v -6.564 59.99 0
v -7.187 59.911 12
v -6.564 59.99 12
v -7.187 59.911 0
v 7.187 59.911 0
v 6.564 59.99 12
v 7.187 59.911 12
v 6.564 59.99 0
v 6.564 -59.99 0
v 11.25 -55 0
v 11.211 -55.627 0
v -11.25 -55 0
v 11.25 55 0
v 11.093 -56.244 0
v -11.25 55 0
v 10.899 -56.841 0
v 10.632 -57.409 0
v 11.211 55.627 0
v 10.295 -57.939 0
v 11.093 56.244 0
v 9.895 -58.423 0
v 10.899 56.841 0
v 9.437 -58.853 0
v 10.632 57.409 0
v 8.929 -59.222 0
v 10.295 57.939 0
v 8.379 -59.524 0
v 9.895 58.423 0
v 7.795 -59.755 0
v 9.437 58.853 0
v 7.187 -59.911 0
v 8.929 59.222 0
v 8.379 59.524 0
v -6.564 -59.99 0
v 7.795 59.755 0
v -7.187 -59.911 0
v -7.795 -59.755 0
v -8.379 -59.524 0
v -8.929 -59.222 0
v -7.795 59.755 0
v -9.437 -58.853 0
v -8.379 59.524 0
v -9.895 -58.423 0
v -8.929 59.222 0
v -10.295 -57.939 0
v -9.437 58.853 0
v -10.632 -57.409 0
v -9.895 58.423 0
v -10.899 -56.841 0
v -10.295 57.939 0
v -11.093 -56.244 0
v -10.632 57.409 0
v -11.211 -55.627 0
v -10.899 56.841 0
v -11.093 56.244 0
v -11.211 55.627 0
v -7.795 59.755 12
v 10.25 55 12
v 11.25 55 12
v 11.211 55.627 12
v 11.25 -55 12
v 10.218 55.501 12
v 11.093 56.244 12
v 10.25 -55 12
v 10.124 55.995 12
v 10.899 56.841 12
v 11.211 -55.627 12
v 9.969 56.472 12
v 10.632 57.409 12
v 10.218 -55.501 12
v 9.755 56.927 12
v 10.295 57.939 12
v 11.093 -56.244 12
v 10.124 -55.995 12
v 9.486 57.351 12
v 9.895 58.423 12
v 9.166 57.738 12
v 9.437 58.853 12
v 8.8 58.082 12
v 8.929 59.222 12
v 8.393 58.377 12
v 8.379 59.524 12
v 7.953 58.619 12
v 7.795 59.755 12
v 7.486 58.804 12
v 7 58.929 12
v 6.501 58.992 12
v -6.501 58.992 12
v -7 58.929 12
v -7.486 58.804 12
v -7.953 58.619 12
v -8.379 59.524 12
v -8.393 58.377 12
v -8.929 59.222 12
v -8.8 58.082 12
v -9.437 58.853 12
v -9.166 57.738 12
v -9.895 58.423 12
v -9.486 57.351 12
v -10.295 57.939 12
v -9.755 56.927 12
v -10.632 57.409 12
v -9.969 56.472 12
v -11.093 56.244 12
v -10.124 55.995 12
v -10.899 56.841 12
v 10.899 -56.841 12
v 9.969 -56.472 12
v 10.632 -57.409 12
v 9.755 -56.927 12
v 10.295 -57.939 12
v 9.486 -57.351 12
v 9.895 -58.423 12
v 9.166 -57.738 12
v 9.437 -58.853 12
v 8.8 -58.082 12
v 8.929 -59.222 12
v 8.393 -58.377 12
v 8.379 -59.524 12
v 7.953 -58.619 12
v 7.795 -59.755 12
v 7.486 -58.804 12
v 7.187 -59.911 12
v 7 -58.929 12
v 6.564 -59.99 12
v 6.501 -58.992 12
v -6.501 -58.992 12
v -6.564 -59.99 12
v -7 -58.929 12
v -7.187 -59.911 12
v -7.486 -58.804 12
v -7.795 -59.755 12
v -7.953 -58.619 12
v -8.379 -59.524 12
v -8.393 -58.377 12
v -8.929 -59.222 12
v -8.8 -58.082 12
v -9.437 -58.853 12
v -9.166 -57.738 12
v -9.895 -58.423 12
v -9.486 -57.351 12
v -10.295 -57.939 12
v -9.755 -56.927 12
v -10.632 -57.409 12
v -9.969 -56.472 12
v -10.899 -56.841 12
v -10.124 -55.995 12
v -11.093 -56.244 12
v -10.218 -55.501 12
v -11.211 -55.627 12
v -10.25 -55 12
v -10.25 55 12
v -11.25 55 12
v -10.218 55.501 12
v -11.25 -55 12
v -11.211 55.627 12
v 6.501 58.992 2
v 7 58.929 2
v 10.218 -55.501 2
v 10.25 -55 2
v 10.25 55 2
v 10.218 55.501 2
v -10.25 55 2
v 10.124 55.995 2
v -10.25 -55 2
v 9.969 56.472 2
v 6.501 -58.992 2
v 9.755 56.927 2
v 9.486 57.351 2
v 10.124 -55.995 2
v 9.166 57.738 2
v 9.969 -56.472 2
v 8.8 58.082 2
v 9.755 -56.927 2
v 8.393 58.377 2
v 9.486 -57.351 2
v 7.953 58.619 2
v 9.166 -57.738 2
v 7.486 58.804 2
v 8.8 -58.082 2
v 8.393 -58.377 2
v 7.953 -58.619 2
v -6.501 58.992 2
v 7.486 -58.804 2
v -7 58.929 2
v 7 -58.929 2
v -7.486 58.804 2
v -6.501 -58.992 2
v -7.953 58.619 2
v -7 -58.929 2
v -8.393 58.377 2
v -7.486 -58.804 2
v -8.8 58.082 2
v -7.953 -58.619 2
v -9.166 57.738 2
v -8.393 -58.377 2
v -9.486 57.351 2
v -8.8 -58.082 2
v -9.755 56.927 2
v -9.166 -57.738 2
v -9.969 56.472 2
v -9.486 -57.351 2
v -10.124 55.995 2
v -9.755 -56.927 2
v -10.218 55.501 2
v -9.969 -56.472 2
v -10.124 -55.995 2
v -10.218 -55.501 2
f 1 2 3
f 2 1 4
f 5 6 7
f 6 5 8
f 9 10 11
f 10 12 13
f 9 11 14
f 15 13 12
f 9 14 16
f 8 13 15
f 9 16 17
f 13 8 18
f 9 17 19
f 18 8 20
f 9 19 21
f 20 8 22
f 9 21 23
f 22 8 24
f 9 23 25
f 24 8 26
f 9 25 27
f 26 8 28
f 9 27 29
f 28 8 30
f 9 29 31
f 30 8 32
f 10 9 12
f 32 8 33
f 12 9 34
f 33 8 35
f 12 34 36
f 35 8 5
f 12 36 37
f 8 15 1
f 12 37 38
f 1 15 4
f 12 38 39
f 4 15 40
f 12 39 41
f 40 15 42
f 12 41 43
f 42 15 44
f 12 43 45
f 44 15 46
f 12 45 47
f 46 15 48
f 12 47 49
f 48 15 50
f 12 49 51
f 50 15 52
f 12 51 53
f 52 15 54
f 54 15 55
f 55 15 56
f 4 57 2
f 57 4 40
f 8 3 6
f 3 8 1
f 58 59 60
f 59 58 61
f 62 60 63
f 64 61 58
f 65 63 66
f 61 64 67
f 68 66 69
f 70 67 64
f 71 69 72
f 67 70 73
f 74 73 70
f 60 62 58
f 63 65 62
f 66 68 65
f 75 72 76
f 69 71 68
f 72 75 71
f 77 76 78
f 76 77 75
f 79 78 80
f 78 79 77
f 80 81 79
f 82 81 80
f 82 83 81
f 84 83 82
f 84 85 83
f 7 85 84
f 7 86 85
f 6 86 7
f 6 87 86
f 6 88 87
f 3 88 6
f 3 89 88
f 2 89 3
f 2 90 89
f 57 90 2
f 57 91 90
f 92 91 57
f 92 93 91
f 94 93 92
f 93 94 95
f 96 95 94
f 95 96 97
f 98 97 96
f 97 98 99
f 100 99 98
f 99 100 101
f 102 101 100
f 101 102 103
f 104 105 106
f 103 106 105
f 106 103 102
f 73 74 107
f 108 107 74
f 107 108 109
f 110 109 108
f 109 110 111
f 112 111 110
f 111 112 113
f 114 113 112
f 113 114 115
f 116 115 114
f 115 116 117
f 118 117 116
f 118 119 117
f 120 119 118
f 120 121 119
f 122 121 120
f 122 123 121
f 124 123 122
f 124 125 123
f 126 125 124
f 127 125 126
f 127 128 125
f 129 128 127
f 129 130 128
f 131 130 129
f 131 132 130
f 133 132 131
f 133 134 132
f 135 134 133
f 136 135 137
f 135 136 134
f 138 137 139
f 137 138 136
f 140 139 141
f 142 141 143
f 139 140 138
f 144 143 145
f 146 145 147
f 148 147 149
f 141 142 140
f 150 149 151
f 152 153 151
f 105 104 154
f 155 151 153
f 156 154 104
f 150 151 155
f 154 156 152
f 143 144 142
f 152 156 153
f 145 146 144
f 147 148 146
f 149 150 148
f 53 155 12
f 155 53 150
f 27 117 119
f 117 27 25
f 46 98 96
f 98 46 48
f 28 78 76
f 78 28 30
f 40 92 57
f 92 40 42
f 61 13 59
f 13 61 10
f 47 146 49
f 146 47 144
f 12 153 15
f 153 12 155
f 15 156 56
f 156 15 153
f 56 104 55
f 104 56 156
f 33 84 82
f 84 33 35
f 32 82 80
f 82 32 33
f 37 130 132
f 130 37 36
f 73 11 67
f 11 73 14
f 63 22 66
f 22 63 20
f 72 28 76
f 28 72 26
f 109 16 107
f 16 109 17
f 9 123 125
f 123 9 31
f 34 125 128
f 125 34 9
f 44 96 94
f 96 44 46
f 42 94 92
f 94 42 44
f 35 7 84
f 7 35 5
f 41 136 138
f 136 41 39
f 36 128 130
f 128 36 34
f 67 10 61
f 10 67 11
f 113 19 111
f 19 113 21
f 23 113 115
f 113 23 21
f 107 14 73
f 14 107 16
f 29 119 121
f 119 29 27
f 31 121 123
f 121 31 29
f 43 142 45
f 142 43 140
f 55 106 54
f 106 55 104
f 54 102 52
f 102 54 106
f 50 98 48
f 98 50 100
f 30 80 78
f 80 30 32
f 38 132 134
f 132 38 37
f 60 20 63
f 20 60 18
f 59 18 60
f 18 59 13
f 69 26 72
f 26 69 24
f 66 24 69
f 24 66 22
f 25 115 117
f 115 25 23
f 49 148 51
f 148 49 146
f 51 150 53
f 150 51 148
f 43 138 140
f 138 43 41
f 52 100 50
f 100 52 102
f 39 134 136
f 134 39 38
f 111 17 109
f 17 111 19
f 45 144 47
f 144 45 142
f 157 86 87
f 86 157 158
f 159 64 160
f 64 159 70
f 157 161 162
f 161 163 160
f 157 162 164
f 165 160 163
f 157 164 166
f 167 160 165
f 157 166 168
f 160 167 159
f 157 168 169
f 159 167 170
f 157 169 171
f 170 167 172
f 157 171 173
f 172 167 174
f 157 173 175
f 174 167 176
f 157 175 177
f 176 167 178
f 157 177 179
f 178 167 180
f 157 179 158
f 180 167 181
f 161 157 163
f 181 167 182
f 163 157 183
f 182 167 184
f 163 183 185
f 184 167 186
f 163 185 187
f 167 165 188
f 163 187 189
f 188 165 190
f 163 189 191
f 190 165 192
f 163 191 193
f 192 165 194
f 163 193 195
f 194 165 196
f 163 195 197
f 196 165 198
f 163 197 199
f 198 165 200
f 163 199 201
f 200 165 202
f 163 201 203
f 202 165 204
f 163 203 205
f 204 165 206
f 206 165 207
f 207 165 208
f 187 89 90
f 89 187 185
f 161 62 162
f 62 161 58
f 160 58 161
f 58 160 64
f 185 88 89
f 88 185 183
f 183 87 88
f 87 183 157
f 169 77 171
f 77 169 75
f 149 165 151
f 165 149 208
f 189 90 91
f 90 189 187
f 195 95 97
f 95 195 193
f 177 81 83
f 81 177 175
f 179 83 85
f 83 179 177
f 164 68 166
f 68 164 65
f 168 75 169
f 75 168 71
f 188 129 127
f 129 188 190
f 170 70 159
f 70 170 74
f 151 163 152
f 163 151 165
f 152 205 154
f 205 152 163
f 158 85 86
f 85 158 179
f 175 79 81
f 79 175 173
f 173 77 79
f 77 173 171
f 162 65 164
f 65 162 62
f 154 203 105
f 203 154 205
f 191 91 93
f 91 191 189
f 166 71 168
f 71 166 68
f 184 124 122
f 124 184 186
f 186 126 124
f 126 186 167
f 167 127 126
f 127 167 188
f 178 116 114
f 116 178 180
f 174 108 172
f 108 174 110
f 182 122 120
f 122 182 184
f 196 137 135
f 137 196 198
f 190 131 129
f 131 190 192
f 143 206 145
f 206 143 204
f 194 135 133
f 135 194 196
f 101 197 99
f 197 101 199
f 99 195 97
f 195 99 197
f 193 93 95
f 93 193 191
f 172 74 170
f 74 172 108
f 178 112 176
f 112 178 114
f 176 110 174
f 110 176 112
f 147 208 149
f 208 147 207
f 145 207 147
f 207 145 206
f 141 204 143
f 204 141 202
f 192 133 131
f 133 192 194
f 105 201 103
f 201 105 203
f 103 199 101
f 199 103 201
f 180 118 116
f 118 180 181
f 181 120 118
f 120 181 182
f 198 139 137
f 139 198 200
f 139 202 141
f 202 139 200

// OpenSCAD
$fn = 50;


difference() {
	union() {
		hull() {
			translate(v = [-6.2500000000, 55.0000000000, 0]) {
				cylinder(h = 12, r = 5);
			}
			translate(v = [6.2500000000, 55.0000000000, 0]) {
				cylinder(h = 12, r = 5);
			}
			translate(v = [-6.2500000000, -55.0000000000, 0]) {
				cylinder(h = 12, r = 5);
			}
			translate(v = [6.2500000000, -55.0000000000, 0]) {
				cylinder(h = 12, r = 5);
			}
		}
	}
	union() {
		translate(v = [0, 0, 2]) {
			hull() {
				translate(v = [-6.2500000000, 55.0000000000, 0]) {
					cylinder(h = 10, r = 4);
				}
				translate(v = [6.2500000000, 55.0000000000, 0]) {
					cylinder(h = 10, r = 4);
				}
				translate(v = [-6.2500000000, -55.0000000000, 0]) {
					cylinder(h = 10, r = 4);
				}
				translate(v = [6.2500000000, -55.0000000000, 0]) {
					cylinder(h = 10, r = 4);
				}
			}
		}
	}
}
